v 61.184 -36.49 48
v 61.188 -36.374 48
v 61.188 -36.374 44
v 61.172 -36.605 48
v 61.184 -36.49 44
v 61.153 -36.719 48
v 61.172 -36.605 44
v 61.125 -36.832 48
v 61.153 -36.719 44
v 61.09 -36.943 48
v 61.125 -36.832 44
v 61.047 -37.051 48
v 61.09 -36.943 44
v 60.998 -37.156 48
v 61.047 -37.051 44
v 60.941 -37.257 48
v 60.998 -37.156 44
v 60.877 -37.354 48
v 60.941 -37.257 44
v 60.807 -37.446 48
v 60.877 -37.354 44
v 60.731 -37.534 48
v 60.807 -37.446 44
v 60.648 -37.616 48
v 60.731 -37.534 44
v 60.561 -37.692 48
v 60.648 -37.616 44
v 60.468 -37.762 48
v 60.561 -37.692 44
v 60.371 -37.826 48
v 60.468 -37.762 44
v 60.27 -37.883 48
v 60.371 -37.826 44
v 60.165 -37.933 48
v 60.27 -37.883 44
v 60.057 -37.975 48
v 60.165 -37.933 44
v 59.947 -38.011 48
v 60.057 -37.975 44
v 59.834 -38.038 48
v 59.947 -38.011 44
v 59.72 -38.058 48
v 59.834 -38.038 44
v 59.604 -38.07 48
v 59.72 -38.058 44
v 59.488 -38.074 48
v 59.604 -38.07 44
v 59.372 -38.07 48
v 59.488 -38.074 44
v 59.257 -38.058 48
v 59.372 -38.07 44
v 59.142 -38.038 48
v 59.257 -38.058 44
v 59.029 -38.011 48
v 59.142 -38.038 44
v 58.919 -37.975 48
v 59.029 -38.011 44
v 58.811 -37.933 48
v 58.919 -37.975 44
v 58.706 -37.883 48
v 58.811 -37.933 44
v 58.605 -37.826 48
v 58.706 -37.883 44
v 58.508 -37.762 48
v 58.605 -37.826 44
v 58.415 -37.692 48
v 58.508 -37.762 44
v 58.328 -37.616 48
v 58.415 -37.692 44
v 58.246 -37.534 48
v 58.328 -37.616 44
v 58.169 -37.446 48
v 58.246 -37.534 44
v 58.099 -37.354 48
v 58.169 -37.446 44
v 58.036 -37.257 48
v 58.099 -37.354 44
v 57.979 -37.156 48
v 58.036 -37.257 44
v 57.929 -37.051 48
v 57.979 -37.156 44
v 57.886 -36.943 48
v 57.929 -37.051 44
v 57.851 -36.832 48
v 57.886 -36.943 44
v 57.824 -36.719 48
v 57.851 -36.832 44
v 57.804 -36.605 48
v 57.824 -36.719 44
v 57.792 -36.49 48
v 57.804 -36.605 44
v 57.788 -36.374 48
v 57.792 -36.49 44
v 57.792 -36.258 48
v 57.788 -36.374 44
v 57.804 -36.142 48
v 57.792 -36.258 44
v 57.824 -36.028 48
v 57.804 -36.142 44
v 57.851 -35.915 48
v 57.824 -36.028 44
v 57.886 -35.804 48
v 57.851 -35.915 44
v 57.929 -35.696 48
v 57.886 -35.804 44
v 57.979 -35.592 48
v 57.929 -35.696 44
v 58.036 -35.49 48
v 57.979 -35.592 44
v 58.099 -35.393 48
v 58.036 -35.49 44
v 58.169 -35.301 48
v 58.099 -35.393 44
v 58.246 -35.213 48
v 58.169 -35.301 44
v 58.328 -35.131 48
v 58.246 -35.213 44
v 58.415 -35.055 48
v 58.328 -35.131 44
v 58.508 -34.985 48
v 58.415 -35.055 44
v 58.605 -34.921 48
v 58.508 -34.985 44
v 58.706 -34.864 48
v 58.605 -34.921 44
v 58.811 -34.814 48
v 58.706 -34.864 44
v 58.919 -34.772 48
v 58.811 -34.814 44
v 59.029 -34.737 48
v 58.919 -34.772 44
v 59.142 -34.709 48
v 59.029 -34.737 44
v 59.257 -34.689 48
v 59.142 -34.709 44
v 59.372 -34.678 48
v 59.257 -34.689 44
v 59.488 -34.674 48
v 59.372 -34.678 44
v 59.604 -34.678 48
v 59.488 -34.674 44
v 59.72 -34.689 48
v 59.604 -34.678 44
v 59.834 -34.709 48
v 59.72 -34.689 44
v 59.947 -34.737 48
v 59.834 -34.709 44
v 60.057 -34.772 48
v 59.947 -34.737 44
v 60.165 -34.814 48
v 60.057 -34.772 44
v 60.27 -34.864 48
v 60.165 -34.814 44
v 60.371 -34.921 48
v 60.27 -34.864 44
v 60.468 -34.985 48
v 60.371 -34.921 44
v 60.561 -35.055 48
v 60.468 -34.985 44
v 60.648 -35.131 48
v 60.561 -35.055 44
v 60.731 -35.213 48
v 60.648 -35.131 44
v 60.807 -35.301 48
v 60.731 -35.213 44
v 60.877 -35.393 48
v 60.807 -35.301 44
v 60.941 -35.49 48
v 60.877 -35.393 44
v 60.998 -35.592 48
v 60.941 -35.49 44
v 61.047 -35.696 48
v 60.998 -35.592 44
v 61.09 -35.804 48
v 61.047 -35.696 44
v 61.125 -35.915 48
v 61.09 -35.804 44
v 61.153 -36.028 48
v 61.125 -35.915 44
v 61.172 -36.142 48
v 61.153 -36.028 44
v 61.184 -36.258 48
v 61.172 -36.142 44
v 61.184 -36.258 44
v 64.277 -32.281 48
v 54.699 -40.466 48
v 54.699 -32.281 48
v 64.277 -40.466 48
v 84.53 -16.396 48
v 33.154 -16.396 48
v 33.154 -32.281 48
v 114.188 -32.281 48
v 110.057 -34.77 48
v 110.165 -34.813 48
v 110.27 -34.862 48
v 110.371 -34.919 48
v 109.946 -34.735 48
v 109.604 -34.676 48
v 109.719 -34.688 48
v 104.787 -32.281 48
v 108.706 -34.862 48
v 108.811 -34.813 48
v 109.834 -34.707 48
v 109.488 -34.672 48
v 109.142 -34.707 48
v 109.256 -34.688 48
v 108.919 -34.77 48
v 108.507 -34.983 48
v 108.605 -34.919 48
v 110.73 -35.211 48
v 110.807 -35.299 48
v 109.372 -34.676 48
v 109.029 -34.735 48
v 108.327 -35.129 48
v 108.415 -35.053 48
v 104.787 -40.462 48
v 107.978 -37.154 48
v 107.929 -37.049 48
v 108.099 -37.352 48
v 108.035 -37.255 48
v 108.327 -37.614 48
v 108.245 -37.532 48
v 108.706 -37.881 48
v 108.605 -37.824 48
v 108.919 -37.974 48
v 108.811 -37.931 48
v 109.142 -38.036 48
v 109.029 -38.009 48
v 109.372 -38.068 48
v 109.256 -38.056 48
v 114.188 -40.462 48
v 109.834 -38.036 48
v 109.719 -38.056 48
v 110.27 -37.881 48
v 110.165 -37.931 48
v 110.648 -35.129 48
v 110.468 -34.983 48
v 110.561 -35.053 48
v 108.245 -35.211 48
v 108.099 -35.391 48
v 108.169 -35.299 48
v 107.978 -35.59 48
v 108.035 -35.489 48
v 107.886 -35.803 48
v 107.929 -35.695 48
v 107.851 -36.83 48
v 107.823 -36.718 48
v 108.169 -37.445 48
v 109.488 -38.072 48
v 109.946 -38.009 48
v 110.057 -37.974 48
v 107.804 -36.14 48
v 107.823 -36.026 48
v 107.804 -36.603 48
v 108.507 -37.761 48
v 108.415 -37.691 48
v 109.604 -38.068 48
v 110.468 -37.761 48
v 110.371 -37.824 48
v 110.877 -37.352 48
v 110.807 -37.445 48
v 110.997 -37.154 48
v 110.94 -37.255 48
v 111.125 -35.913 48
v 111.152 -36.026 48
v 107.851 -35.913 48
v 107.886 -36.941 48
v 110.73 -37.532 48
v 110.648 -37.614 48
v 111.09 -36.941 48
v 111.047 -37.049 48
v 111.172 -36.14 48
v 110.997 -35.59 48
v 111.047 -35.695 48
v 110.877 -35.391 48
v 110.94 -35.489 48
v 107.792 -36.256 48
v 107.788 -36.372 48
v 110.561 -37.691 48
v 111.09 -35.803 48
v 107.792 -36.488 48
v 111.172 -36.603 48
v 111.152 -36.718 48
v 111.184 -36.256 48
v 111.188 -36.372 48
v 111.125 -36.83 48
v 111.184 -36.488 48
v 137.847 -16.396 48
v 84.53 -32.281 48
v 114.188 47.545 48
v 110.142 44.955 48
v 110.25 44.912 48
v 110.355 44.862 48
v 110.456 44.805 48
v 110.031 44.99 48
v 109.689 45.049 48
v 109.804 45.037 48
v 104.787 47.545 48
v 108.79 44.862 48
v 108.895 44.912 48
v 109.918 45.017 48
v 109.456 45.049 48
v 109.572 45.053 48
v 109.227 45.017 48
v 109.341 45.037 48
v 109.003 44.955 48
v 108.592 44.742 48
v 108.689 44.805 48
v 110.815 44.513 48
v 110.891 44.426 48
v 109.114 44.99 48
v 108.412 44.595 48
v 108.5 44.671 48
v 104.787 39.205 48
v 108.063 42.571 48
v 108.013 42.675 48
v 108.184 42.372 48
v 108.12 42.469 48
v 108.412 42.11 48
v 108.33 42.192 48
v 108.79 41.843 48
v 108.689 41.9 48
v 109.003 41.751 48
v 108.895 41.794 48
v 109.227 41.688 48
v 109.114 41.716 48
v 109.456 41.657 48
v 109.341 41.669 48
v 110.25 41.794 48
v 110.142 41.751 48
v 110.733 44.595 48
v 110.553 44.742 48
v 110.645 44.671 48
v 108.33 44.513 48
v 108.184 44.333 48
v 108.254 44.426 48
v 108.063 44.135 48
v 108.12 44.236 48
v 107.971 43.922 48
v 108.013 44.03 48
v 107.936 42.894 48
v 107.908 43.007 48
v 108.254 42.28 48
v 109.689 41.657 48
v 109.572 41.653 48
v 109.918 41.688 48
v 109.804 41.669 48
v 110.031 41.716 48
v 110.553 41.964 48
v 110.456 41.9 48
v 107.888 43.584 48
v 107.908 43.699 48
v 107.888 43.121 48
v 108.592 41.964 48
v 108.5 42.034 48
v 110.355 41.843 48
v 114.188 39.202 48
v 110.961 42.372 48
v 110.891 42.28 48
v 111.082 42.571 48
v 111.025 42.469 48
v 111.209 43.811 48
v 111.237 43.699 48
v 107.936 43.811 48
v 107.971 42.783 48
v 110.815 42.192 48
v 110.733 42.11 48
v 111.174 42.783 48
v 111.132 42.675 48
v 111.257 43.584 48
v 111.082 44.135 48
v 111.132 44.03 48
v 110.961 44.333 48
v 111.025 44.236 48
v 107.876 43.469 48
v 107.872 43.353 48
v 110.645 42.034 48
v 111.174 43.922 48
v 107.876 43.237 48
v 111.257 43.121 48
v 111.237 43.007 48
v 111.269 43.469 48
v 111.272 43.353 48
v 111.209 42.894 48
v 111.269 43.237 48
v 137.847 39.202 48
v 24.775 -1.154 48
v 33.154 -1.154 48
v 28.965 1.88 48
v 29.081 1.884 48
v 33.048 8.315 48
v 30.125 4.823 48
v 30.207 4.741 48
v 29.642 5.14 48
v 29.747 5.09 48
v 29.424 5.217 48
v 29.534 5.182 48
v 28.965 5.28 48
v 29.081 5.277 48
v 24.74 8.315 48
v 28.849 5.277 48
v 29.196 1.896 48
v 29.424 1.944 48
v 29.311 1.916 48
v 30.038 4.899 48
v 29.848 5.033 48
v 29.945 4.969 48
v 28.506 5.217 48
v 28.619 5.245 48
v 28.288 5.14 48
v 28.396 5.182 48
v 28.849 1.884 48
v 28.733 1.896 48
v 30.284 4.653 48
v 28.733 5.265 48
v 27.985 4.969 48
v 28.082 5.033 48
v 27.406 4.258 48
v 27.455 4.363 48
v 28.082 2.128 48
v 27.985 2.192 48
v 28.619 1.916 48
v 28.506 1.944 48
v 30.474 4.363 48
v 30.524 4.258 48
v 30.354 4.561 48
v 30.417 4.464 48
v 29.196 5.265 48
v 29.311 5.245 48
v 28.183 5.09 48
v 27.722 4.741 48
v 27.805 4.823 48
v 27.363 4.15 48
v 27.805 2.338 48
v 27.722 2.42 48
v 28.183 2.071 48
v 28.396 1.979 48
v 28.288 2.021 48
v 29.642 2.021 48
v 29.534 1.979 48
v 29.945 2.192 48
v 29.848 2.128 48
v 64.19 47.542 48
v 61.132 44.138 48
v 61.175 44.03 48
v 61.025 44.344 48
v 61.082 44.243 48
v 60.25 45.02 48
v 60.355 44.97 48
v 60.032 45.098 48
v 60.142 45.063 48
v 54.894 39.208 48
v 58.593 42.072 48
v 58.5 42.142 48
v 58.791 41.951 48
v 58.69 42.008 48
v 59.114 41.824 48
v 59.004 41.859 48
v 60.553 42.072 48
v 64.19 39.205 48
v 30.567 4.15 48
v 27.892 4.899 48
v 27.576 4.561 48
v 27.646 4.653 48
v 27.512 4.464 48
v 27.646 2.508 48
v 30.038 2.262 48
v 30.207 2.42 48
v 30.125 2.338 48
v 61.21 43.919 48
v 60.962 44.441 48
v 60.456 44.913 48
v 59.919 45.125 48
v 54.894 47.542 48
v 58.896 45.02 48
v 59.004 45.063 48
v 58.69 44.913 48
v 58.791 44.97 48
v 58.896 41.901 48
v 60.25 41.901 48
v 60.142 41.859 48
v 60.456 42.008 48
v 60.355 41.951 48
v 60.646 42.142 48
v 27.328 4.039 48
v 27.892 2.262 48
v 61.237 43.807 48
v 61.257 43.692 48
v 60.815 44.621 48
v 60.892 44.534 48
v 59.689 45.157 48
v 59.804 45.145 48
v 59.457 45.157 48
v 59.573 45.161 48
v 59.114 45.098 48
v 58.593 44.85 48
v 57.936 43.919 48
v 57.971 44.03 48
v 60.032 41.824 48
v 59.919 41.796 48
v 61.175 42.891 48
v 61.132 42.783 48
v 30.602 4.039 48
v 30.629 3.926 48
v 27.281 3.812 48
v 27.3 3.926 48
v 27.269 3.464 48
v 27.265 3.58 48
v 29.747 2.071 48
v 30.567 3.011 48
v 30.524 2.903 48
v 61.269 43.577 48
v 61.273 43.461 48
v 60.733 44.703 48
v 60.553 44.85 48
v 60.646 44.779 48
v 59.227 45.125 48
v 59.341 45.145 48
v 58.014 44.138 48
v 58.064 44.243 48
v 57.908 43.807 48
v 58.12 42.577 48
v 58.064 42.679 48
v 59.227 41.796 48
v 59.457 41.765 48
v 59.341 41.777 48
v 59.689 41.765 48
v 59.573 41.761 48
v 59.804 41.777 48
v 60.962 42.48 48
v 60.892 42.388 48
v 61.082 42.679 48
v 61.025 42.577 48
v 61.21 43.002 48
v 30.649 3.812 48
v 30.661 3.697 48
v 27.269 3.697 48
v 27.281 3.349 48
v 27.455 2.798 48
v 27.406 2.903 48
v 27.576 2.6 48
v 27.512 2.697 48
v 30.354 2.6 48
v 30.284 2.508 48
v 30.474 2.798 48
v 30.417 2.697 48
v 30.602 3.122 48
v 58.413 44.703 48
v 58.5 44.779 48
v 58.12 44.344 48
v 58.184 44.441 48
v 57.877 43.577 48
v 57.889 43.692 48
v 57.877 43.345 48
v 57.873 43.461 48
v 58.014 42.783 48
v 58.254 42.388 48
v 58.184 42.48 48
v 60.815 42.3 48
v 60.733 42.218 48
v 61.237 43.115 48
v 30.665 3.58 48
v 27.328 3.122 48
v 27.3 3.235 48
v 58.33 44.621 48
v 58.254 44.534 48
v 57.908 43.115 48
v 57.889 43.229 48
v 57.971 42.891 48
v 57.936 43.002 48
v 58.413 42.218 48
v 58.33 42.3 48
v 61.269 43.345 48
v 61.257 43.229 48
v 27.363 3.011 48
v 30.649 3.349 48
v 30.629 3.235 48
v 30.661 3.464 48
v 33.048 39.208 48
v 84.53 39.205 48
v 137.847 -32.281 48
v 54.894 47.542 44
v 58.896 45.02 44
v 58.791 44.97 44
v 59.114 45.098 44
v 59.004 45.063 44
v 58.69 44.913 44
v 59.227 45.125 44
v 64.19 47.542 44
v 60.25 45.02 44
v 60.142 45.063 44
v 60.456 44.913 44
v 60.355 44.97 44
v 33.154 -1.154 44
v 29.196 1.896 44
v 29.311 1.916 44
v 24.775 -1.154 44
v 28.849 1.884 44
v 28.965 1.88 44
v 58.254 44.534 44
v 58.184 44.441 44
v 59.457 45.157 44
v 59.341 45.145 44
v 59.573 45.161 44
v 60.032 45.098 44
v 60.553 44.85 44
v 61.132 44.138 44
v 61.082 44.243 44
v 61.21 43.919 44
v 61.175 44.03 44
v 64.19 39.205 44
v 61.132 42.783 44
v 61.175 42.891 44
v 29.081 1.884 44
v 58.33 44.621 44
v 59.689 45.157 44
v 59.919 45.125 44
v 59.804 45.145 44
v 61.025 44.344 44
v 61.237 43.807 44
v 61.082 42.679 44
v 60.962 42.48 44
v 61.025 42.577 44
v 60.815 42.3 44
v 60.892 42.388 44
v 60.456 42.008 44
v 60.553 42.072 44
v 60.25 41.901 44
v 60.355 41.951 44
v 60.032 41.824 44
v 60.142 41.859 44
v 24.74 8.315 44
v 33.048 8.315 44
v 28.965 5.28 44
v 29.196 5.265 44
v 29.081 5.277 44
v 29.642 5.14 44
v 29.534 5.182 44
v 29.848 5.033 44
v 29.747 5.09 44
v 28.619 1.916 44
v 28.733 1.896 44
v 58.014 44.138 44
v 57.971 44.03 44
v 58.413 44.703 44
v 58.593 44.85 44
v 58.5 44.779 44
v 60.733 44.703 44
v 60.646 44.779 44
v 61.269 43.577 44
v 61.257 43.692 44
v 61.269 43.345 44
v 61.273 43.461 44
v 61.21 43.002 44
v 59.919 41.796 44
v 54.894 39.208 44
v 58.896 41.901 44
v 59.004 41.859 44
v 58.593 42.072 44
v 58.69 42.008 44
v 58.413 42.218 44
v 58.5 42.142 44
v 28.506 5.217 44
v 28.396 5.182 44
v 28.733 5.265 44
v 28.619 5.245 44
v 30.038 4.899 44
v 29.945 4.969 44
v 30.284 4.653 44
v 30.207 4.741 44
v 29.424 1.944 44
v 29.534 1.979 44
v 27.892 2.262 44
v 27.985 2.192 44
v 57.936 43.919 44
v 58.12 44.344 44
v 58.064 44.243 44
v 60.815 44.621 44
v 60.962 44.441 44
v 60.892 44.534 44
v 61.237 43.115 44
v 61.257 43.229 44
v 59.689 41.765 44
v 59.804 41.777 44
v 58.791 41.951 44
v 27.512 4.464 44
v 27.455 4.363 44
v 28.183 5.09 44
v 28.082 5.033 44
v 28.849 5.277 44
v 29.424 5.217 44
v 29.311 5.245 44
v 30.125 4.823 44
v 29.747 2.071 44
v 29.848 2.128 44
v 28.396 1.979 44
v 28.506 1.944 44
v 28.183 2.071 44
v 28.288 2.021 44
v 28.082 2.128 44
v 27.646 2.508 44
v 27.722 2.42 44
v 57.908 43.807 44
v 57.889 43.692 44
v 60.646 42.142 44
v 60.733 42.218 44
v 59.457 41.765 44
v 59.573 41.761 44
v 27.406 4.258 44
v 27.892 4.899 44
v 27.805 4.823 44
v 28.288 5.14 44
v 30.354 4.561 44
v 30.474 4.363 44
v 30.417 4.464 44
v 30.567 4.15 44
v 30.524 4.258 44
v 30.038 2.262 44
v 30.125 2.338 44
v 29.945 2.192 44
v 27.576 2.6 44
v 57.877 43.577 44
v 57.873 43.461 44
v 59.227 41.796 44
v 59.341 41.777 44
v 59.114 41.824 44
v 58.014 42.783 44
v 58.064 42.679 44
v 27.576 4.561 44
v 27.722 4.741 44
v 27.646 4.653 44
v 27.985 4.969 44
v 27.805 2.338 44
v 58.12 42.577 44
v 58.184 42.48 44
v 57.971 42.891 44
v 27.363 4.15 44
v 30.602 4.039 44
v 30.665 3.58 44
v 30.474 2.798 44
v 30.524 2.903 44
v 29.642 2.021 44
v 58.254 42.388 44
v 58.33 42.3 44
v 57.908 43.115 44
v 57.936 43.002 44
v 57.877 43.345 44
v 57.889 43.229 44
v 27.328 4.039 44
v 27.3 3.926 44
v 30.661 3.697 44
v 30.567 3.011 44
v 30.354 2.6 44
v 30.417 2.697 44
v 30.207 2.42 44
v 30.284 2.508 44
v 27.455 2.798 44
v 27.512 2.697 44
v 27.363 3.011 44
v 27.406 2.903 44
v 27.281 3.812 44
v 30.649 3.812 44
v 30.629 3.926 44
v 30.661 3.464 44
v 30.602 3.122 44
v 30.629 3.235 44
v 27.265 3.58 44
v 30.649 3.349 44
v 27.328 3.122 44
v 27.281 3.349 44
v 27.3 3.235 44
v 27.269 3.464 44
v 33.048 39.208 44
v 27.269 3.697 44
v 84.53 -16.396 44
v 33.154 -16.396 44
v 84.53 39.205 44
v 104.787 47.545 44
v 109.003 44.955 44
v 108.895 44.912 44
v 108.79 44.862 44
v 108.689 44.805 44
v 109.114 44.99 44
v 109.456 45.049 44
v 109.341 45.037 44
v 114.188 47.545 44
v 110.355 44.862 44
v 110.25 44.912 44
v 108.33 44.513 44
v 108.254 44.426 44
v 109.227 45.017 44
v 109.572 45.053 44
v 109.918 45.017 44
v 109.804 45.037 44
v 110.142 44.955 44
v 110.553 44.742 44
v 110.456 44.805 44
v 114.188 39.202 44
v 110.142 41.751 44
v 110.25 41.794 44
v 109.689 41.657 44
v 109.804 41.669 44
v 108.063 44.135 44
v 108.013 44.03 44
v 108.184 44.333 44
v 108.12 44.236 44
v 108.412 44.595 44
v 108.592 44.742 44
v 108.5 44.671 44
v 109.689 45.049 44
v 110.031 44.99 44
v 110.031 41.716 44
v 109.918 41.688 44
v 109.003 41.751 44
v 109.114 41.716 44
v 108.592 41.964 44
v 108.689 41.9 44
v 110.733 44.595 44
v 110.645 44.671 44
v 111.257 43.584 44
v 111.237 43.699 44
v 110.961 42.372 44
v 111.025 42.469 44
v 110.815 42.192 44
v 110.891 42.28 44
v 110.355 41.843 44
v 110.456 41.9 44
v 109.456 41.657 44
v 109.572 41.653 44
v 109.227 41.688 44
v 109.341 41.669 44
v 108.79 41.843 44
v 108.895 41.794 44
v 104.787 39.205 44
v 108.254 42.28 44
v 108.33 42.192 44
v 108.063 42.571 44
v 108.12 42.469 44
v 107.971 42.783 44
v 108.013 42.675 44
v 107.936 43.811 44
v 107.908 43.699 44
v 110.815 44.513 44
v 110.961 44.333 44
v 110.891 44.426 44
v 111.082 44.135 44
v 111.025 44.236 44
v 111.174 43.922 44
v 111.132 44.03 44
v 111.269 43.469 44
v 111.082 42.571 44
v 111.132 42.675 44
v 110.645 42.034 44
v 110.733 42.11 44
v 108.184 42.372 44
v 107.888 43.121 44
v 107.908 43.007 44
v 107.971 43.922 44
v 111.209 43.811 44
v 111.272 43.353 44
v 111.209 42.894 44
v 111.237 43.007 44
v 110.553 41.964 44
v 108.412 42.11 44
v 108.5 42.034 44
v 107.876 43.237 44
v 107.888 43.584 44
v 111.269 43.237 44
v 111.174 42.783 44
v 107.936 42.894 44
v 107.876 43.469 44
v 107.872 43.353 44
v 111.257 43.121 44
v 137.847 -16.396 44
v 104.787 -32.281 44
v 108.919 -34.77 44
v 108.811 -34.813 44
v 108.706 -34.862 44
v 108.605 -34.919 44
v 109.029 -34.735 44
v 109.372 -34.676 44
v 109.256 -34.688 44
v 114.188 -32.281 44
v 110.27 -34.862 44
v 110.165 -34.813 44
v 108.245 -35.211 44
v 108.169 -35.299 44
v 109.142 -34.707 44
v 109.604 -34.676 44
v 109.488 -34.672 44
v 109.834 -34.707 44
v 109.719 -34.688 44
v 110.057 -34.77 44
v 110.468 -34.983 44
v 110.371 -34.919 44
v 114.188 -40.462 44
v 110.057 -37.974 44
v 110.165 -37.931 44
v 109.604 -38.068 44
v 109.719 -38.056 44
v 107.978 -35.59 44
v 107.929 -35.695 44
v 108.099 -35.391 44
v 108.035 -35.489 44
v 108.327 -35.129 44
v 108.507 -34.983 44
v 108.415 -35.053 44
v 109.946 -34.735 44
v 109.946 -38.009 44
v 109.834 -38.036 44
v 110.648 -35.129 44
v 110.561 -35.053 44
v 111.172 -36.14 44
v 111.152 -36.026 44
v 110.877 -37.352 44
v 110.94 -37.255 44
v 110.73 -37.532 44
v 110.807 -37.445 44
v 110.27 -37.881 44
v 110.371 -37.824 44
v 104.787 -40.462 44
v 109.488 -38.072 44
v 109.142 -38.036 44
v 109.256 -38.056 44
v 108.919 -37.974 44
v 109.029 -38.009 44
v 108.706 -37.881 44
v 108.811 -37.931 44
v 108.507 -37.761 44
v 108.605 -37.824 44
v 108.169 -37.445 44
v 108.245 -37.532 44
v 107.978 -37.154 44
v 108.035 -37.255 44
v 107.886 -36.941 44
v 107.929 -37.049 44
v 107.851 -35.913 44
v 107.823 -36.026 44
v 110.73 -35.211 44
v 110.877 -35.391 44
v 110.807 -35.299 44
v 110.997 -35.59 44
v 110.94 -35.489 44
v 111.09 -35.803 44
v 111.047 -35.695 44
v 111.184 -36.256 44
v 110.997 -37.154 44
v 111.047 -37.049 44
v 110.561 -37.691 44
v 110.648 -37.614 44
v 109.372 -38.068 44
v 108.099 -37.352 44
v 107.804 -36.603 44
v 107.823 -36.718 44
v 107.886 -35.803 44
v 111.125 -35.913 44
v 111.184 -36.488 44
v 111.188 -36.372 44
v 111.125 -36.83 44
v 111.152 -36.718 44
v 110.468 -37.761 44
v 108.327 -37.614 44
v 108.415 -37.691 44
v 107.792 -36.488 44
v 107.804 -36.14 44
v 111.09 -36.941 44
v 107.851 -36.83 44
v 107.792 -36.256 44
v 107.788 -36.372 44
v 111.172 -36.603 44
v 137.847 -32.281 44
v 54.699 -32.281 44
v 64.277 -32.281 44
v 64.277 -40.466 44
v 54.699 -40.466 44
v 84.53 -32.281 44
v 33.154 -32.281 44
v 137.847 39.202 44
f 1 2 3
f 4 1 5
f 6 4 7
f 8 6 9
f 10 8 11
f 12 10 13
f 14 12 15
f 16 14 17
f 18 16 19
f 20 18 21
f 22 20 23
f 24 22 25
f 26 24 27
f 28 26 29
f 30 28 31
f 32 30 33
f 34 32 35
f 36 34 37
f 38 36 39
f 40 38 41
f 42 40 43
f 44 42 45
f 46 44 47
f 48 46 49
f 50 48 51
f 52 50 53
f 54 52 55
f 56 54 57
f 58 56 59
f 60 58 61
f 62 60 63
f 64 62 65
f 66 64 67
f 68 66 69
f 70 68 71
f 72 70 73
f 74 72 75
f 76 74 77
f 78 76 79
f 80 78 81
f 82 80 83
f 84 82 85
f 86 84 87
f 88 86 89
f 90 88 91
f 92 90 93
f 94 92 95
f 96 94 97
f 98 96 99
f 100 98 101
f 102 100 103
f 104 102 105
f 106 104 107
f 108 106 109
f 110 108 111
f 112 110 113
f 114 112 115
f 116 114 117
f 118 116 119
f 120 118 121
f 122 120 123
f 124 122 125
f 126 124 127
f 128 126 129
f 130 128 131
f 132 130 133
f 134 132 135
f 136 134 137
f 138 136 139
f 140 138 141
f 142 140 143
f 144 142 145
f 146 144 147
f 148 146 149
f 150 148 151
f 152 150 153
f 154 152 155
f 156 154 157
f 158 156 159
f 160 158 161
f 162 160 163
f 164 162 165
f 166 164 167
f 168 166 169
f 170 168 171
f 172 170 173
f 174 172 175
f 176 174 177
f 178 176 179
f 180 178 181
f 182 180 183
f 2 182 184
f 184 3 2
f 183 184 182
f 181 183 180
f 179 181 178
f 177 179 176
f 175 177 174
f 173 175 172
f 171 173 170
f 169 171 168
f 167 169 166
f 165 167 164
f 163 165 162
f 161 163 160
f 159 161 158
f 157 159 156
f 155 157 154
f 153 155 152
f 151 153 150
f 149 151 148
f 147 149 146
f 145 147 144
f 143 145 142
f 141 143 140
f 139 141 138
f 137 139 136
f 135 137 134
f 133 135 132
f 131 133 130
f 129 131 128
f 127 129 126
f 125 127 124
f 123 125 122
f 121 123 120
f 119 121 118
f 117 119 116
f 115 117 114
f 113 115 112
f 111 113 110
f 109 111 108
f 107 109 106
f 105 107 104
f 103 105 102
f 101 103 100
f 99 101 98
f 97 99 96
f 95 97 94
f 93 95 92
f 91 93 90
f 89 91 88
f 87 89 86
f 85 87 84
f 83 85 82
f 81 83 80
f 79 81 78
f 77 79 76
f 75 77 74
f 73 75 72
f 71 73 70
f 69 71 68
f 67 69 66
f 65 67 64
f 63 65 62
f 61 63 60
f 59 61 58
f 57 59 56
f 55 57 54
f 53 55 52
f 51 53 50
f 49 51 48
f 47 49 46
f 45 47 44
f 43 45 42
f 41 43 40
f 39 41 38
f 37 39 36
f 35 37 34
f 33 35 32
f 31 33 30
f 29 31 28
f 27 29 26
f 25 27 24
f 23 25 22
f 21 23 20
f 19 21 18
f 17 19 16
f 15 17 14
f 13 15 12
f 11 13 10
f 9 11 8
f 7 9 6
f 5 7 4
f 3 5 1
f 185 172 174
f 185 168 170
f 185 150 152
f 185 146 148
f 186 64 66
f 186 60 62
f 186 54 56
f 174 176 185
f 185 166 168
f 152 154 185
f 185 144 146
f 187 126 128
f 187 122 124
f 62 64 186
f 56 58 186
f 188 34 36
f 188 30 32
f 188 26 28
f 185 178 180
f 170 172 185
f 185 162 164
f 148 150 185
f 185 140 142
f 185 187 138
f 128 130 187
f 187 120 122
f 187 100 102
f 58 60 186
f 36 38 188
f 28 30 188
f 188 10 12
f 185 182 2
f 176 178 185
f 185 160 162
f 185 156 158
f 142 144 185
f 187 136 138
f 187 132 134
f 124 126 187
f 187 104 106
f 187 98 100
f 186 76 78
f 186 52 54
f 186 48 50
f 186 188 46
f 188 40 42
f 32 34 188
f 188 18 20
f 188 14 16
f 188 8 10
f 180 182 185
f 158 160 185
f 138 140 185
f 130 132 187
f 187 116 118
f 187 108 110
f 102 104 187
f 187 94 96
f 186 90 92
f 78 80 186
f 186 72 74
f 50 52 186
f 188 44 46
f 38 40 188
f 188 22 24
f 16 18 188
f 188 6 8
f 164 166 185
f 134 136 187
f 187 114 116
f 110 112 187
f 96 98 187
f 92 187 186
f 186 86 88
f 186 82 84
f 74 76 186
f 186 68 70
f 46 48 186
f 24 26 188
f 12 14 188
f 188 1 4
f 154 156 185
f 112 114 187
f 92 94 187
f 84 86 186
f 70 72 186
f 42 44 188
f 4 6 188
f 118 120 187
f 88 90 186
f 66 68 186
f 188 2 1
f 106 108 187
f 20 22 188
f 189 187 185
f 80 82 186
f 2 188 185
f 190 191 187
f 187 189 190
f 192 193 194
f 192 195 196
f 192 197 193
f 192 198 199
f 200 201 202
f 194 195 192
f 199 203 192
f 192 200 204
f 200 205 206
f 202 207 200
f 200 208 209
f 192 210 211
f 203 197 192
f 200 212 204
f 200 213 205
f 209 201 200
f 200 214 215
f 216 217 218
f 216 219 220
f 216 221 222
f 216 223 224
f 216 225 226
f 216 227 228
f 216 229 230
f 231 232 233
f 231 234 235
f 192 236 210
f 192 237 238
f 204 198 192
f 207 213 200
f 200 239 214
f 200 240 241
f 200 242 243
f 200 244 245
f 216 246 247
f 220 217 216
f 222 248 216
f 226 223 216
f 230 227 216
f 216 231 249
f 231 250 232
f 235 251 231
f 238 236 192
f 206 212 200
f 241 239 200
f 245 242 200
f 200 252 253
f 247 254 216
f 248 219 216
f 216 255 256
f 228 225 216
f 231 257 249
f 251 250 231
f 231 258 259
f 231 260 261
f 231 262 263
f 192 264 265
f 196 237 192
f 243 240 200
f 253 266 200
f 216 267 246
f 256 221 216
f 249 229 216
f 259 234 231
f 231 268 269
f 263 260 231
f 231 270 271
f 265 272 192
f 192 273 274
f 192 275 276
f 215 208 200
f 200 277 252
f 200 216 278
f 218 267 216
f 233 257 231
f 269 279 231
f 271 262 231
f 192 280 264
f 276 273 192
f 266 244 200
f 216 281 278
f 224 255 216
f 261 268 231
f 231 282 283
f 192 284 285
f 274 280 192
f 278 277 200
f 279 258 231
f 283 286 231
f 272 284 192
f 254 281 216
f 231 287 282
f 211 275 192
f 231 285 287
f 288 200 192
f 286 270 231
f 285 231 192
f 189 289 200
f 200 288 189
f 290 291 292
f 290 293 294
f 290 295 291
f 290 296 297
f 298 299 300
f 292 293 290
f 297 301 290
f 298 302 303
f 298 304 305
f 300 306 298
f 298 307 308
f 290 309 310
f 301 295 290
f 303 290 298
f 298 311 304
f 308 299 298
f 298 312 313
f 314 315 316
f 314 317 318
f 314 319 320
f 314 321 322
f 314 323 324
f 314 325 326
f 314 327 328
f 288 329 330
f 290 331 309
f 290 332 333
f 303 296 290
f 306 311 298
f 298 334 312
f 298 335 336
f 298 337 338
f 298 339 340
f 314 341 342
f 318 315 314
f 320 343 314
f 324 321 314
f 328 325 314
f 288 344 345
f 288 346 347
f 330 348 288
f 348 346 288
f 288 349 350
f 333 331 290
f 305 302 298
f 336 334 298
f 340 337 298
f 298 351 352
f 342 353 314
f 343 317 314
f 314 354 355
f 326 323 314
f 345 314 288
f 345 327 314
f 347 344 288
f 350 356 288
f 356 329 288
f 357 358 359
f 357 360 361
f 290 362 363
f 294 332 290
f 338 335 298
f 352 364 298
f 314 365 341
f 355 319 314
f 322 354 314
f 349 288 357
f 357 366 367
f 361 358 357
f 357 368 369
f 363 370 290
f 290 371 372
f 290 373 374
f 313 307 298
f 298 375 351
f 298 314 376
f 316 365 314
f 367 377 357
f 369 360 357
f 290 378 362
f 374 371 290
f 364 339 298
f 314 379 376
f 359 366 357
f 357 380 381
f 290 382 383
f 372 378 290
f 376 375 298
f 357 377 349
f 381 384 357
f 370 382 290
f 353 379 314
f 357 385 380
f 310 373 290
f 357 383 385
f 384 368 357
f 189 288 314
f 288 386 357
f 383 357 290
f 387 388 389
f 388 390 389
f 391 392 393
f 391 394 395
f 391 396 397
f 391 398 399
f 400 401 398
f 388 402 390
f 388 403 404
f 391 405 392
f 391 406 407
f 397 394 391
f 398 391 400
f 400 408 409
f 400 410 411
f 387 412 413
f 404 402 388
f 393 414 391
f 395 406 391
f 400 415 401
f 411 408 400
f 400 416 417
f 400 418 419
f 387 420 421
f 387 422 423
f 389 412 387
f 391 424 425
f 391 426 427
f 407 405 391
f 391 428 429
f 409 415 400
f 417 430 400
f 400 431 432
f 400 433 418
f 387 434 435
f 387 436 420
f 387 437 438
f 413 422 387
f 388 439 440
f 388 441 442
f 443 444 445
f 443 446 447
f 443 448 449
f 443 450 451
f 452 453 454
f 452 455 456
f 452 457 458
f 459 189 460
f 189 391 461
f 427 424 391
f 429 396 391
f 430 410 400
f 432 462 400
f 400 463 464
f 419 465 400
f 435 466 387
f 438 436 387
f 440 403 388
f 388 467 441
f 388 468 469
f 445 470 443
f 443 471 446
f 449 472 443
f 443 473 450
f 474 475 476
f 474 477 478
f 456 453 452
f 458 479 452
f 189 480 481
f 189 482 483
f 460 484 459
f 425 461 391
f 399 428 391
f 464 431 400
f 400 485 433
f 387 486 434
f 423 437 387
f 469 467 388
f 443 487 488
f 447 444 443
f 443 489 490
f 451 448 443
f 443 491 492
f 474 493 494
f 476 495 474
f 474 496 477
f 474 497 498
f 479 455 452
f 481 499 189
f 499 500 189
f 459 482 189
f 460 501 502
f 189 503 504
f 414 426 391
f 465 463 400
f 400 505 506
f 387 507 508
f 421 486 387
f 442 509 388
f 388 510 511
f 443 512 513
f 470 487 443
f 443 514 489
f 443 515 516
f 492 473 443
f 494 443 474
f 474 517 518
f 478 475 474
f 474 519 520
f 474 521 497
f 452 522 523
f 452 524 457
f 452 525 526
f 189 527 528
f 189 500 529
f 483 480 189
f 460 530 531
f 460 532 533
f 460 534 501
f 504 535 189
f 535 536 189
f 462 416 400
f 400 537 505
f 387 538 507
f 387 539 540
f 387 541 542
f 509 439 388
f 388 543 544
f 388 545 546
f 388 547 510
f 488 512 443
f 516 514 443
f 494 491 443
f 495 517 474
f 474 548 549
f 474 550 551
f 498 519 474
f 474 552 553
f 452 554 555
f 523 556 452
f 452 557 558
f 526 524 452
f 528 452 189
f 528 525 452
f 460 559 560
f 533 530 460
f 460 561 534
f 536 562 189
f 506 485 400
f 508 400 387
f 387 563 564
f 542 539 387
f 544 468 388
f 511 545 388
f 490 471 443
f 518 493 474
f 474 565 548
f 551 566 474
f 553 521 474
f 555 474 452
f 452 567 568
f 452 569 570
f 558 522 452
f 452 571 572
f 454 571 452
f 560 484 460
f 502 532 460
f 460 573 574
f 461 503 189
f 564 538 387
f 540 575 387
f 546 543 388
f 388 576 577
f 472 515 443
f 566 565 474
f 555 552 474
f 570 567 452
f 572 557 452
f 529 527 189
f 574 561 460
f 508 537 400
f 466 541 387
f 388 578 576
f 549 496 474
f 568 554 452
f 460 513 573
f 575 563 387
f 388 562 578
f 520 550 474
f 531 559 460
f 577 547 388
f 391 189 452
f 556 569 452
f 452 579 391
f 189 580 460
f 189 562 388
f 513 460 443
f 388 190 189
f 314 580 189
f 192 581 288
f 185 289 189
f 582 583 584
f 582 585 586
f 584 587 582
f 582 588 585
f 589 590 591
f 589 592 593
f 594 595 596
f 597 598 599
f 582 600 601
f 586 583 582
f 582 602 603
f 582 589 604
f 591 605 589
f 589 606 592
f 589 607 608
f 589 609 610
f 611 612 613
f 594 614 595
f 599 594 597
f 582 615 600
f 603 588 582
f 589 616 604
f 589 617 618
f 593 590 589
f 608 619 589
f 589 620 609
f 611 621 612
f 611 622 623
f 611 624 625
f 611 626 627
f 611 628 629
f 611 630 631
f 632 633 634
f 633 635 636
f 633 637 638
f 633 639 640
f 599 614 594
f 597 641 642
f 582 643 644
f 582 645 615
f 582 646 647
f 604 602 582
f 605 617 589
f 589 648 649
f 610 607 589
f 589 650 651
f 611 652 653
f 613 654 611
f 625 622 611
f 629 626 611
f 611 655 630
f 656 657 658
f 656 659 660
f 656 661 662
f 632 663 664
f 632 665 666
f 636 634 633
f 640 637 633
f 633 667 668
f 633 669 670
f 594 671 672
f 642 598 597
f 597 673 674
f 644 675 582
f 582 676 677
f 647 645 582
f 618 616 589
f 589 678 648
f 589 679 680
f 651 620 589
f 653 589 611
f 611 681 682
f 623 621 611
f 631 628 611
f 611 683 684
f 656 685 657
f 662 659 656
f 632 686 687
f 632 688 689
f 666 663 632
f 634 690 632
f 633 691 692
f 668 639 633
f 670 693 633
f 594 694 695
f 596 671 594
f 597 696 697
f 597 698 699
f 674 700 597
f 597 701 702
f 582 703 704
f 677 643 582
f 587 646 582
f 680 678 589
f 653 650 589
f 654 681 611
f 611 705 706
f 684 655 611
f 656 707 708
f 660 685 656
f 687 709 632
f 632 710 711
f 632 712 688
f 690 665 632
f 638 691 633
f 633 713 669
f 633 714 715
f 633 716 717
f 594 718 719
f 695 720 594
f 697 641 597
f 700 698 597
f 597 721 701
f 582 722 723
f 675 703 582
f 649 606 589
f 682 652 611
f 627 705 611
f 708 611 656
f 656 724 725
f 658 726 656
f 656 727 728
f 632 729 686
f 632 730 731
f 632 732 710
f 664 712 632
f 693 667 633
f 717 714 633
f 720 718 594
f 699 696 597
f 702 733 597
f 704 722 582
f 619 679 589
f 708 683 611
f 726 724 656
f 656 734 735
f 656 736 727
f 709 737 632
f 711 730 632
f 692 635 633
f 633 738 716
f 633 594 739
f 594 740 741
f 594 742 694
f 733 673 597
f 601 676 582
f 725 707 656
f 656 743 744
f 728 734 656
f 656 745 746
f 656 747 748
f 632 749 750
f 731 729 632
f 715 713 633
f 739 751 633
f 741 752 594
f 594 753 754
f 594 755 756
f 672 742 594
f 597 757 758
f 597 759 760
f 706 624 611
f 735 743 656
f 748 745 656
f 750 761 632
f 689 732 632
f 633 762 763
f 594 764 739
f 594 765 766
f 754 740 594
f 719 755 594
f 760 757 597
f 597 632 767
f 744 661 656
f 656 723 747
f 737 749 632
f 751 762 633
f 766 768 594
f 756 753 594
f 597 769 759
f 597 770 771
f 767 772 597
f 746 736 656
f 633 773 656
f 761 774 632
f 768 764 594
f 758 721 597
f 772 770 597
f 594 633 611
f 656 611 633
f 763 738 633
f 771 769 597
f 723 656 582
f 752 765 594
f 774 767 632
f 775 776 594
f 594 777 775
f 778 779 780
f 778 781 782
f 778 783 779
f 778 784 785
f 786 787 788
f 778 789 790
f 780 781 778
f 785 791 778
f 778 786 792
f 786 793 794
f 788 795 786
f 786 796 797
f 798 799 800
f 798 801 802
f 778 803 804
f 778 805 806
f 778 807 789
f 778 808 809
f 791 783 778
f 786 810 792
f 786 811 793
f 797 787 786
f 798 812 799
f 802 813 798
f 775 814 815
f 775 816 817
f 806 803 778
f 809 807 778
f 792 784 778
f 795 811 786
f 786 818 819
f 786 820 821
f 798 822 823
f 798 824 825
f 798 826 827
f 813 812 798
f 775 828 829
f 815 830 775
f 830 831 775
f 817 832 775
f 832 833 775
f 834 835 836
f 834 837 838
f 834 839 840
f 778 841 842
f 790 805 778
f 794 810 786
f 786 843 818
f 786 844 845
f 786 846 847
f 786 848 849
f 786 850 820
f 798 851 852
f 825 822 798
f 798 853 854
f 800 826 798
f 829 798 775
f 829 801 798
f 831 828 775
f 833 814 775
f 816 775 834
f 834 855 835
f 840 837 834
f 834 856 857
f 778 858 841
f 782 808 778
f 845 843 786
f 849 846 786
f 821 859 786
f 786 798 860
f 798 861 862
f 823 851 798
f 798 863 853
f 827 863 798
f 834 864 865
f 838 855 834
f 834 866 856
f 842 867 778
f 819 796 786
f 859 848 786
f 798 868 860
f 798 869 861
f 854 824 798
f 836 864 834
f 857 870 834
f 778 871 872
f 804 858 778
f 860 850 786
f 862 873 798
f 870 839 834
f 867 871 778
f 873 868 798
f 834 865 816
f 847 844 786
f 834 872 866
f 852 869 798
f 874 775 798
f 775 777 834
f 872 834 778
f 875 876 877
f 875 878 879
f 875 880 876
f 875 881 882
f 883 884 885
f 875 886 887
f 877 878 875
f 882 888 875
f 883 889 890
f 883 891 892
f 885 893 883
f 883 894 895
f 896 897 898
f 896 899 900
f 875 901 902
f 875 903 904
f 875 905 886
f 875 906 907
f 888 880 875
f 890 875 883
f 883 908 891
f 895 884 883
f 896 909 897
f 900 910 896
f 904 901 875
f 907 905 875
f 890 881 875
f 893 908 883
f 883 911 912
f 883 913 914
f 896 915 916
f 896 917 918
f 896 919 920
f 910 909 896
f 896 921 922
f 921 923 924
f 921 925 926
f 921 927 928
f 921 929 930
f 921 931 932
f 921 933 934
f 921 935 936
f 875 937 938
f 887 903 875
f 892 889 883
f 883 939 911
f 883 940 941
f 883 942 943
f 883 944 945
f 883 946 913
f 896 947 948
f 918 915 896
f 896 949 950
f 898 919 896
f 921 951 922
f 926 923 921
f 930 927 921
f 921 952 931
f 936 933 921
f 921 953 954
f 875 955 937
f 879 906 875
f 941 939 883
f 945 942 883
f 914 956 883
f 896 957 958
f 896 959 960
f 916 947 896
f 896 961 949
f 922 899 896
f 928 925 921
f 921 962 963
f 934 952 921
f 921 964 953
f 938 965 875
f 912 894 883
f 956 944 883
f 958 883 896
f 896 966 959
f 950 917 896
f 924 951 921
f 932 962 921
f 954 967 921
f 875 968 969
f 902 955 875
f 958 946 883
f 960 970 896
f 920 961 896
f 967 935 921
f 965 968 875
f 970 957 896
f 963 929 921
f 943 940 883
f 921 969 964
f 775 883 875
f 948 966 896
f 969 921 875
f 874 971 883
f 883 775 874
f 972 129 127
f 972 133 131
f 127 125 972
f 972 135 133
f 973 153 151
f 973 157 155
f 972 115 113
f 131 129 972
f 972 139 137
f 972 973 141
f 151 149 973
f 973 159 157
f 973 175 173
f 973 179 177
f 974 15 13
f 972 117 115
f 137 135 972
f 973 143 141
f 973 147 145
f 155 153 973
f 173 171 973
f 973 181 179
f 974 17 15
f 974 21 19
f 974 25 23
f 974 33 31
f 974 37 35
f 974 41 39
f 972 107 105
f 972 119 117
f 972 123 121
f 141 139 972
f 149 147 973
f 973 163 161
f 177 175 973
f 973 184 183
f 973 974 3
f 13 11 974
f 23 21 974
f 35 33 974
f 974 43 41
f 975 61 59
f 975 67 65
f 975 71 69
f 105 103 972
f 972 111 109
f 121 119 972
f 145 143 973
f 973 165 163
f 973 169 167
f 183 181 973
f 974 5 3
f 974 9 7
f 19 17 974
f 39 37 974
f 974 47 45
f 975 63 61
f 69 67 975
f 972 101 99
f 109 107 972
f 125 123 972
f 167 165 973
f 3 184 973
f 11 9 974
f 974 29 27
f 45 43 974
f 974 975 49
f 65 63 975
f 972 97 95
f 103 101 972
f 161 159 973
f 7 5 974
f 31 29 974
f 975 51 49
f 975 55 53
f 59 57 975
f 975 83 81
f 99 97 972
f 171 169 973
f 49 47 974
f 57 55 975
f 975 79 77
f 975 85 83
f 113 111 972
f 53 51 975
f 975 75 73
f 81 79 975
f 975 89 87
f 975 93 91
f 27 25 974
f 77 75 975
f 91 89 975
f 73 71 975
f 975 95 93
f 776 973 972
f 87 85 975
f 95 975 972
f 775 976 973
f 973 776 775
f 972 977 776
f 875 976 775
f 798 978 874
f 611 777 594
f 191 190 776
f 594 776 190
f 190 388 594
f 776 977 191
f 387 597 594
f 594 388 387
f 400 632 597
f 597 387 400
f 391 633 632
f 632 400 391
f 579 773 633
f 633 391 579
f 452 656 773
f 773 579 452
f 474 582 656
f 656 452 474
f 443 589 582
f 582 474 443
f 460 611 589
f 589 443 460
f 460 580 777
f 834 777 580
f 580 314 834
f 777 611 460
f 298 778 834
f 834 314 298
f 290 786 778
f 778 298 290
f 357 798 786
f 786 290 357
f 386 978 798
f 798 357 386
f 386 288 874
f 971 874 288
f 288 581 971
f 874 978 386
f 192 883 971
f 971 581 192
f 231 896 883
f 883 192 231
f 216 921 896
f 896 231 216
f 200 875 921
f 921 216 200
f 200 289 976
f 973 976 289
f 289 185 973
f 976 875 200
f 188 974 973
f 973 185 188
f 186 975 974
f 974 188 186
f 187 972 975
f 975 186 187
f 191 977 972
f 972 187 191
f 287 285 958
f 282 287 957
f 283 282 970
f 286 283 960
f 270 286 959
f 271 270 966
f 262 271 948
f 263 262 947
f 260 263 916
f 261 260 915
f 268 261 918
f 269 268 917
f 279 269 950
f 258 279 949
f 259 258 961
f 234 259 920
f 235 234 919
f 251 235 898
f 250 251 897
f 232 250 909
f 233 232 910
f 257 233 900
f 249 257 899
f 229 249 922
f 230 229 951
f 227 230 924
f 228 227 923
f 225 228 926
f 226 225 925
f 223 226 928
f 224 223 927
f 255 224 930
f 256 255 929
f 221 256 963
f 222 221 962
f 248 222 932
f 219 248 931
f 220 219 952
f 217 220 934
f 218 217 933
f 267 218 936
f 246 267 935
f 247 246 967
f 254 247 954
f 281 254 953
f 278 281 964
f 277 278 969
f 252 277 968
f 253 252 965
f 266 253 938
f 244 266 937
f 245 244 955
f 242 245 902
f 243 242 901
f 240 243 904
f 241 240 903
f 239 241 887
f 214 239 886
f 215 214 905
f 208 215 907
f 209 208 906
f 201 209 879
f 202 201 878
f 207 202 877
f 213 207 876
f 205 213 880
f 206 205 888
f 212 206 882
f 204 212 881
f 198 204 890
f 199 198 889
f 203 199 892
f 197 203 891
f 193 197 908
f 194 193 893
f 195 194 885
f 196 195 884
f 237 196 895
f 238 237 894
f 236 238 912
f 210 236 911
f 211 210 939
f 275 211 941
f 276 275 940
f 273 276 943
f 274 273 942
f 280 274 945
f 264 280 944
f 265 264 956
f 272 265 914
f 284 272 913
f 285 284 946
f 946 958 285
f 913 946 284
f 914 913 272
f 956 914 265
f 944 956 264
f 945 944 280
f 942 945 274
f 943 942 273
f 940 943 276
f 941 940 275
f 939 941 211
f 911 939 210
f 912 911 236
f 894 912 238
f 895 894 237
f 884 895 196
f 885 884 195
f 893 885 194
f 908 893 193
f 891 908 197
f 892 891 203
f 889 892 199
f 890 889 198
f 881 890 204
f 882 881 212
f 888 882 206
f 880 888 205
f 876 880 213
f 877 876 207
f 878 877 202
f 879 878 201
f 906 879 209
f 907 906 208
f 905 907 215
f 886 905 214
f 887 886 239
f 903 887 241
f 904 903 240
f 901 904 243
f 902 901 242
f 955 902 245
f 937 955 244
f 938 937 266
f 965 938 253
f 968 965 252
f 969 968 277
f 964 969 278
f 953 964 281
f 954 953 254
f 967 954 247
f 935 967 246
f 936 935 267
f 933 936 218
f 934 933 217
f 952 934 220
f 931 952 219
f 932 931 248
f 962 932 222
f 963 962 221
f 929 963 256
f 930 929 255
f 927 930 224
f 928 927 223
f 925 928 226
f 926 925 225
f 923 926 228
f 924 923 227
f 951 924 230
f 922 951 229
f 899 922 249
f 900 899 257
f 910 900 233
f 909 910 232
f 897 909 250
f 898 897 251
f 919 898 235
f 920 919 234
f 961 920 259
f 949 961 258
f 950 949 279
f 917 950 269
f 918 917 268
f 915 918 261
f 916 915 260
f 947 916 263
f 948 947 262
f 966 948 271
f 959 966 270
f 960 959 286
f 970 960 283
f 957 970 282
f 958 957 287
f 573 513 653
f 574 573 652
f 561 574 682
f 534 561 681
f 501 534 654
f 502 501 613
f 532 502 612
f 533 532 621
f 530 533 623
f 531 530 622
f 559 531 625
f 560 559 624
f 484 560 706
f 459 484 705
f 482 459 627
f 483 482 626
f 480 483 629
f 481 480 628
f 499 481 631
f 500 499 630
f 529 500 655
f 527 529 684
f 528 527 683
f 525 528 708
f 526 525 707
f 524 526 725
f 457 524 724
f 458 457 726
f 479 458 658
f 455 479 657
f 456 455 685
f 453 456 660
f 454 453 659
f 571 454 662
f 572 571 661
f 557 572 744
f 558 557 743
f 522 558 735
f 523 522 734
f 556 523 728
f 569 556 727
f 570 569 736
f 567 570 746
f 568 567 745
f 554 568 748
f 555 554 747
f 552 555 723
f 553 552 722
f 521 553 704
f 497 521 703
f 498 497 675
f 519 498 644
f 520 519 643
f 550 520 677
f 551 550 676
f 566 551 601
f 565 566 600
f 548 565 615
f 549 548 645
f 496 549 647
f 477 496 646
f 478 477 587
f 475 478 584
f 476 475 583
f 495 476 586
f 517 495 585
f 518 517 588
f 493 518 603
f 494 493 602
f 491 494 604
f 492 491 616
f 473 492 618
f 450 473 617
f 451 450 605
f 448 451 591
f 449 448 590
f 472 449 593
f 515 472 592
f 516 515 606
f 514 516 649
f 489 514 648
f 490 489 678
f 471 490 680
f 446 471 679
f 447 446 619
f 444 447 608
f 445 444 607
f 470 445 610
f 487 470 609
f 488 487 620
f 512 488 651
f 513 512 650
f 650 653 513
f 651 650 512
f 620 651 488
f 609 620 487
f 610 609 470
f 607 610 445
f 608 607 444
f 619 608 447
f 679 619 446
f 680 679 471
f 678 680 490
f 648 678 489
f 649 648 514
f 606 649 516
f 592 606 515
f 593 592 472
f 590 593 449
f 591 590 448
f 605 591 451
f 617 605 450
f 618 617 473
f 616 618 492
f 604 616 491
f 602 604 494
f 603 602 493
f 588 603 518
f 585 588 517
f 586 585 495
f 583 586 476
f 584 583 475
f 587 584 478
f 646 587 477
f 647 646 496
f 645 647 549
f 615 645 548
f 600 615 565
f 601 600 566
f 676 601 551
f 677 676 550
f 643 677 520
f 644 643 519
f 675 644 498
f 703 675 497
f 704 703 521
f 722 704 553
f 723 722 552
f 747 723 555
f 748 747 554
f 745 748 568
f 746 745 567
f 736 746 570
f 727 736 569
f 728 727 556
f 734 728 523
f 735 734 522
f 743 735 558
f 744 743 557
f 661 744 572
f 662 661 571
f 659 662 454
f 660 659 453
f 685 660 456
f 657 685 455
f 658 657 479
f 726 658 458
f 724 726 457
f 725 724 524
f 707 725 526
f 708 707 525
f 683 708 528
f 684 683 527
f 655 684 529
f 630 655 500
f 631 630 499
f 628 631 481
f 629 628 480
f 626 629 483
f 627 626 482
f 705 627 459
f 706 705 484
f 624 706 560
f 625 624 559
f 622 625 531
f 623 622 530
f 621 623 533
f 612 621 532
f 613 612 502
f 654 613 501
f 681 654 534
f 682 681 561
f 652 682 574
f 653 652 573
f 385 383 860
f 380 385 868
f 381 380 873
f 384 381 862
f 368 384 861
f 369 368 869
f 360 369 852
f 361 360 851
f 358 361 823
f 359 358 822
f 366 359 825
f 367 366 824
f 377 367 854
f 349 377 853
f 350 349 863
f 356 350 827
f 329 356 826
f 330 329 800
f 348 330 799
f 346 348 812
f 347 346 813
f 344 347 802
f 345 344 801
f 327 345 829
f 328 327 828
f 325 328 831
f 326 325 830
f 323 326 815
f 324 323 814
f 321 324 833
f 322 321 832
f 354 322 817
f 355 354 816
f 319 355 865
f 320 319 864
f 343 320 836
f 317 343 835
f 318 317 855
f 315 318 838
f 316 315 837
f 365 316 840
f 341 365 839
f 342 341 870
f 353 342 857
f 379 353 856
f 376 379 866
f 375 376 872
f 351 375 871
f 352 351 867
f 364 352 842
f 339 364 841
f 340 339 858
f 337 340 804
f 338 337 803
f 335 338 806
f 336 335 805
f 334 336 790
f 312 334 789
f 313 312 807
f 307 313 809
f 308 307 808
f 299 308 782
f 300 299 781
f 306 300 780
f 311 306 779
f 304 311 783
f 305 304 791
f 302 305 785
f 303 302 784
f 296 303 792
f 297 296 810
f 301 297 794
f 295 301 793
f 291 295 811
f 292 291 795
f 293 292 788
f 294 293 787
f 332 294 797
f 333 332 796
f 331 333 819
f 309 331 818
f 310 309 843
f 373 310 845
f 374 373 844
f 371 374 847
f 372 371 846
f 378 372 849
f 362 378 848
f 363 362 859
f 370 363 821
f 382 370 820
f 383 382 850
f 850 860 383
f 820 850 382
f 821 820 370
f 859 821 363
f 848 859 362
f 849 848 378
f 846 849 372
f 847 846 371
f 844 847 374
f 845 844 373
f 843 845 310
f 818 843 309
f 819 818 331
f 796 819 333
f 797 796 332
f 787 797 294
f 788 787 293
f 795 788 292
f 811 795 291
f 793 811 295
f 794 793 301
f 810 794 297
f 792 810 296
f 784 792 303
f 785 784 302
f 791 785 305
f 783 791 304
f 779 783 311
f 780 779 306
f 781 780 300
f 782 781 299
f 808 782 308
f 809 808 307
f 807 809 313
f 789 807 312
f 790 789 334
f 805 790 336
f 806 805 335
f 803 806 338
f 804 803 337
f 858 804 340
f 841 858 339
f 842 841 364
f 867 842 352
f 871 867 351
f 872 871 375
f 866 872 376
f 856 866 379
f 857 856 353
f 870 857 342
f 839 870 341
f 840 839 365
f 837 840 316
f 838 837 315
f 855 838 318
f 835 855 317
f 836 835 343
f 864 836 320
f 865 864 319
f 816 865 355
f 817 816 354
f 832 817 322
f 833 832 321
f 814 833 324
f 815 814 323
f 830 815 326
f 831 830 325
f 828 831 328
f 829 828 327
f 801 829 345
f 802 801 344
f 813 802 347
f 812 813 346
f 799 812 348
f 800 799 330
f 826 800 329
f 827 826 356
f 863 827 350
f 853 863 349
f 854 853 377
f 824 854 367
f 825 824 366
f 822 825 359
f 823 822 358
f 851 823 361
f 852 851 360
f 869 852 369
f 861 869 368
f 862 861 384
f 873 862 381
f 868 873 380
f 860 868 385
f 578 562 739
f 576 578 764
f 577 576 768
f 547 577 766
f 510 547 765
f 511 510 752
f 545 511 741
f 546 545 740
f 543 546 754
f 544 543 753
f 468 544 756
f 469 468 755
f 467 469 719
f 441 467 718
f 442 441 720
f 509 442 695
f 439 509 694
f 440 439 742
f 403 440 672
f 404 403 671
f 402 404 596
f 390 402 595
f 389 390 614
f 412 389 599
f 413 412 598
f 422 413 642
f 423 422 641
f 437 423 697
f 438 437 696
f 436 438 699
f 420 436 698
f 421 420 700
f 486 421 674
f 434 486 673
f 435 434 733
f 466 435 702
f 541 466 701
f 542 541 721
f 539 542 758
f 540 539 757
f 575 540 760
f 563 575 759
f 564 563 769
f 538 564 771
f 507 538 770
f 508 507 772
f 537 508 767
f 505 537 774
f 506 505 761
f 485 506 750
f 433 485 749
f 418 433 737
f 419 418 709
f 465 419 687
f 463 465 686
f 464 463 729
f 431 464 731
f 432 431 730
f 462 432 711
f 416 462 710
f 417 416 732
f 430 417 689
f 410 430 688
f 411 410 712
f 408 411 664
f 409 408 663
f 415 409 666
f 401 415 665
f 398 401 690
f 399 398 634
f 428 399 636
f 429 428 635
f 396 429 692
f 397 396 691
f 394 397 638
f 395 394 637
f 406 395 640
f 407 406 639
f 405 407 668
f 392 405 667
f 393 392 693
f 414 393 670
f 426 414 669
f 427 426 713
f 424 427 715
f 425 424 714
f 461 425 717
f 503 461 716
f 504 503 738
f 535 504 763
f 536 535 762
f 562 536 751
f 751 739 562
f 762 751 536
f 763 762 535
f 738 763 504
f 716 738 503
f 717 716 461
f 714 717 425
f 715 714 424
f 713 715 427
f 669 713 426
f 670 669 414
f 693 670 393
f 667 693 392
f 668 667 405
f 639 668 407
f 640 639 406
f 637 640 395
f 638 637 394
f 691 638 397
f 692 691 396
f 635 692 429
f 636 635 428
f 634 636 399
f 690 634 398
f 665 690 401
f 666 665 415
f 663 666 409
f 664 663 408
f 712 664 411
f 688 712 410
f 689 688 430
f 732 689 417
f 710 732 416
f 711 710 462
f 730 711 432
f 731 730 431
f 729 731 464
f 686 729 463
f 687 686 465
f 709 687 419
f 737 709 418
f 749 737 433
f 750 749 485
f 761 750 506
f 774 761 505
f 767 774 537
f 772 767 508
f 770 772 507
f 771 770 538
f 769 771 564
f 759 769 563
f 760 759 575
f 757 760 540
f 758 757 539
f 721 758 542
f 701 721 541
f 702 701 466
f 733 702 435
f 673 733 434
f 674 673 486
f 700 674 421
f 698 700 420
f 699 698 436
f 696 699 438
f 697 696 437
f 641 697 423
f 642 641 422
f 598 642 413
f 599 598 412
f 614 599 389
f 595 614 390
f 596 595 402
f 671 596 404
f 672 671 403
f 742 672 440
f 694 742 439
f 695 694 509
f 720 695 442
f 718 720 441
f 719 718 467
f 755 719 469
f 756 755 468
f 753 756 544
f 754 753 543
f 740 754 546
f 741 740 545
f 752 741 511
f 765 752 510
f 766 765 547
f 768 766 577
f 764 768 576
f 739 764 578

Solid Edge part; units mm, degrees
sketch "Sketch1" plane through (0, 0, 44) normal (0, 0, 1) x (1, 0, 0)
  line L0 (33.1543, -1.1543) -> (24.7755, -1.1543)
  line L1 (24.7755, -1.1543) -> (24.7403, 8.3152)
  line L2 (24.7403, 8.3152) -> (33.048, 8.3152)
  line L3 (33.048, 8.3152) -> (33.048, 39.2077)
  line L4 (33.048, 39.2077) -> (54.894, 39.2077)
  line L5 (54.894, 39.2077) -> (54.894, 47.5424)
  line L6 (54.894, 47.5424) -> (64.0113, 47.5424)
  line L7 (64.0113, 47.5424) -> (64.1902, 47.5424)
  line L8 (64.1902, 47.5424) -> (64.1902, 39.2048)
  line L9 (64.1902, 39.2048) -> (104.7872, 39.2048)
  line L10 (104.7872, 39.2048) -> (104.7872, 47.5447)
  line L11 (104.7872, 47.5447) -> (114.1885, 47.5447)
  line L12 (114.1885, 47.5447) -> (114.1885, 39.2022)
  line L13 (114.1885, 39.2022) -> (137.8474, 39.2022)
  line L14 (137.8474, 39.2022) -> (137.8474, -32.2815)
  line L15 (137.8474, -32.2815) -> (114.1885, -32.2815)
  line L16 (114.1885, -32.2815) -> (114.1885, -40.4625)
  line L17 (114.1885, -40.4625) -> (104.7872, -40.4625)
  line L18 (104.7872, -40.4625) -> (104.7872, -32.2809)
  line L19 (104.7872, -32.2809) -> (64.2772, -32.2809)
  line L20 (64.2772, -32.2809) -> (64.2772, -40.4663)
  line L21 (64.2772, -40.4663) -> (54.6991, -40.4663)
  line L22 (54.6991, -40.4663) -> (54.6991, -32.2809)
  line L23 (54.6991, -32.2809) -> (33.1543, -32.2809)
  line L24 (33.1543, -32.2809) -> (33.1543, -1.1543)
extrude "Protrusion1" add sketch "Sketch1" along normal blind 4
hole "Hole_1" at (59.4881, -36.3736, 48) direction (0, 0, -1) diameter 3.4 end up to next
hole "Hole1" at (109.4878, -36.3718, 48) direction (0, 0, -1) diameter 3.4 end up to next
hole "Hole2" at (59.5729, 43.4608, 48) direction (0, 0, -1) diameter 3.4 end up to next
hole "Hole3" at (109.5725, 43.3528, 48) direction (0, 0, -1) diameter 3.4 end up to next
hole "Hole4" at (28.9649, 3.5805, 48) direction (0, 0, -1) diameter 3.4 end up to next
